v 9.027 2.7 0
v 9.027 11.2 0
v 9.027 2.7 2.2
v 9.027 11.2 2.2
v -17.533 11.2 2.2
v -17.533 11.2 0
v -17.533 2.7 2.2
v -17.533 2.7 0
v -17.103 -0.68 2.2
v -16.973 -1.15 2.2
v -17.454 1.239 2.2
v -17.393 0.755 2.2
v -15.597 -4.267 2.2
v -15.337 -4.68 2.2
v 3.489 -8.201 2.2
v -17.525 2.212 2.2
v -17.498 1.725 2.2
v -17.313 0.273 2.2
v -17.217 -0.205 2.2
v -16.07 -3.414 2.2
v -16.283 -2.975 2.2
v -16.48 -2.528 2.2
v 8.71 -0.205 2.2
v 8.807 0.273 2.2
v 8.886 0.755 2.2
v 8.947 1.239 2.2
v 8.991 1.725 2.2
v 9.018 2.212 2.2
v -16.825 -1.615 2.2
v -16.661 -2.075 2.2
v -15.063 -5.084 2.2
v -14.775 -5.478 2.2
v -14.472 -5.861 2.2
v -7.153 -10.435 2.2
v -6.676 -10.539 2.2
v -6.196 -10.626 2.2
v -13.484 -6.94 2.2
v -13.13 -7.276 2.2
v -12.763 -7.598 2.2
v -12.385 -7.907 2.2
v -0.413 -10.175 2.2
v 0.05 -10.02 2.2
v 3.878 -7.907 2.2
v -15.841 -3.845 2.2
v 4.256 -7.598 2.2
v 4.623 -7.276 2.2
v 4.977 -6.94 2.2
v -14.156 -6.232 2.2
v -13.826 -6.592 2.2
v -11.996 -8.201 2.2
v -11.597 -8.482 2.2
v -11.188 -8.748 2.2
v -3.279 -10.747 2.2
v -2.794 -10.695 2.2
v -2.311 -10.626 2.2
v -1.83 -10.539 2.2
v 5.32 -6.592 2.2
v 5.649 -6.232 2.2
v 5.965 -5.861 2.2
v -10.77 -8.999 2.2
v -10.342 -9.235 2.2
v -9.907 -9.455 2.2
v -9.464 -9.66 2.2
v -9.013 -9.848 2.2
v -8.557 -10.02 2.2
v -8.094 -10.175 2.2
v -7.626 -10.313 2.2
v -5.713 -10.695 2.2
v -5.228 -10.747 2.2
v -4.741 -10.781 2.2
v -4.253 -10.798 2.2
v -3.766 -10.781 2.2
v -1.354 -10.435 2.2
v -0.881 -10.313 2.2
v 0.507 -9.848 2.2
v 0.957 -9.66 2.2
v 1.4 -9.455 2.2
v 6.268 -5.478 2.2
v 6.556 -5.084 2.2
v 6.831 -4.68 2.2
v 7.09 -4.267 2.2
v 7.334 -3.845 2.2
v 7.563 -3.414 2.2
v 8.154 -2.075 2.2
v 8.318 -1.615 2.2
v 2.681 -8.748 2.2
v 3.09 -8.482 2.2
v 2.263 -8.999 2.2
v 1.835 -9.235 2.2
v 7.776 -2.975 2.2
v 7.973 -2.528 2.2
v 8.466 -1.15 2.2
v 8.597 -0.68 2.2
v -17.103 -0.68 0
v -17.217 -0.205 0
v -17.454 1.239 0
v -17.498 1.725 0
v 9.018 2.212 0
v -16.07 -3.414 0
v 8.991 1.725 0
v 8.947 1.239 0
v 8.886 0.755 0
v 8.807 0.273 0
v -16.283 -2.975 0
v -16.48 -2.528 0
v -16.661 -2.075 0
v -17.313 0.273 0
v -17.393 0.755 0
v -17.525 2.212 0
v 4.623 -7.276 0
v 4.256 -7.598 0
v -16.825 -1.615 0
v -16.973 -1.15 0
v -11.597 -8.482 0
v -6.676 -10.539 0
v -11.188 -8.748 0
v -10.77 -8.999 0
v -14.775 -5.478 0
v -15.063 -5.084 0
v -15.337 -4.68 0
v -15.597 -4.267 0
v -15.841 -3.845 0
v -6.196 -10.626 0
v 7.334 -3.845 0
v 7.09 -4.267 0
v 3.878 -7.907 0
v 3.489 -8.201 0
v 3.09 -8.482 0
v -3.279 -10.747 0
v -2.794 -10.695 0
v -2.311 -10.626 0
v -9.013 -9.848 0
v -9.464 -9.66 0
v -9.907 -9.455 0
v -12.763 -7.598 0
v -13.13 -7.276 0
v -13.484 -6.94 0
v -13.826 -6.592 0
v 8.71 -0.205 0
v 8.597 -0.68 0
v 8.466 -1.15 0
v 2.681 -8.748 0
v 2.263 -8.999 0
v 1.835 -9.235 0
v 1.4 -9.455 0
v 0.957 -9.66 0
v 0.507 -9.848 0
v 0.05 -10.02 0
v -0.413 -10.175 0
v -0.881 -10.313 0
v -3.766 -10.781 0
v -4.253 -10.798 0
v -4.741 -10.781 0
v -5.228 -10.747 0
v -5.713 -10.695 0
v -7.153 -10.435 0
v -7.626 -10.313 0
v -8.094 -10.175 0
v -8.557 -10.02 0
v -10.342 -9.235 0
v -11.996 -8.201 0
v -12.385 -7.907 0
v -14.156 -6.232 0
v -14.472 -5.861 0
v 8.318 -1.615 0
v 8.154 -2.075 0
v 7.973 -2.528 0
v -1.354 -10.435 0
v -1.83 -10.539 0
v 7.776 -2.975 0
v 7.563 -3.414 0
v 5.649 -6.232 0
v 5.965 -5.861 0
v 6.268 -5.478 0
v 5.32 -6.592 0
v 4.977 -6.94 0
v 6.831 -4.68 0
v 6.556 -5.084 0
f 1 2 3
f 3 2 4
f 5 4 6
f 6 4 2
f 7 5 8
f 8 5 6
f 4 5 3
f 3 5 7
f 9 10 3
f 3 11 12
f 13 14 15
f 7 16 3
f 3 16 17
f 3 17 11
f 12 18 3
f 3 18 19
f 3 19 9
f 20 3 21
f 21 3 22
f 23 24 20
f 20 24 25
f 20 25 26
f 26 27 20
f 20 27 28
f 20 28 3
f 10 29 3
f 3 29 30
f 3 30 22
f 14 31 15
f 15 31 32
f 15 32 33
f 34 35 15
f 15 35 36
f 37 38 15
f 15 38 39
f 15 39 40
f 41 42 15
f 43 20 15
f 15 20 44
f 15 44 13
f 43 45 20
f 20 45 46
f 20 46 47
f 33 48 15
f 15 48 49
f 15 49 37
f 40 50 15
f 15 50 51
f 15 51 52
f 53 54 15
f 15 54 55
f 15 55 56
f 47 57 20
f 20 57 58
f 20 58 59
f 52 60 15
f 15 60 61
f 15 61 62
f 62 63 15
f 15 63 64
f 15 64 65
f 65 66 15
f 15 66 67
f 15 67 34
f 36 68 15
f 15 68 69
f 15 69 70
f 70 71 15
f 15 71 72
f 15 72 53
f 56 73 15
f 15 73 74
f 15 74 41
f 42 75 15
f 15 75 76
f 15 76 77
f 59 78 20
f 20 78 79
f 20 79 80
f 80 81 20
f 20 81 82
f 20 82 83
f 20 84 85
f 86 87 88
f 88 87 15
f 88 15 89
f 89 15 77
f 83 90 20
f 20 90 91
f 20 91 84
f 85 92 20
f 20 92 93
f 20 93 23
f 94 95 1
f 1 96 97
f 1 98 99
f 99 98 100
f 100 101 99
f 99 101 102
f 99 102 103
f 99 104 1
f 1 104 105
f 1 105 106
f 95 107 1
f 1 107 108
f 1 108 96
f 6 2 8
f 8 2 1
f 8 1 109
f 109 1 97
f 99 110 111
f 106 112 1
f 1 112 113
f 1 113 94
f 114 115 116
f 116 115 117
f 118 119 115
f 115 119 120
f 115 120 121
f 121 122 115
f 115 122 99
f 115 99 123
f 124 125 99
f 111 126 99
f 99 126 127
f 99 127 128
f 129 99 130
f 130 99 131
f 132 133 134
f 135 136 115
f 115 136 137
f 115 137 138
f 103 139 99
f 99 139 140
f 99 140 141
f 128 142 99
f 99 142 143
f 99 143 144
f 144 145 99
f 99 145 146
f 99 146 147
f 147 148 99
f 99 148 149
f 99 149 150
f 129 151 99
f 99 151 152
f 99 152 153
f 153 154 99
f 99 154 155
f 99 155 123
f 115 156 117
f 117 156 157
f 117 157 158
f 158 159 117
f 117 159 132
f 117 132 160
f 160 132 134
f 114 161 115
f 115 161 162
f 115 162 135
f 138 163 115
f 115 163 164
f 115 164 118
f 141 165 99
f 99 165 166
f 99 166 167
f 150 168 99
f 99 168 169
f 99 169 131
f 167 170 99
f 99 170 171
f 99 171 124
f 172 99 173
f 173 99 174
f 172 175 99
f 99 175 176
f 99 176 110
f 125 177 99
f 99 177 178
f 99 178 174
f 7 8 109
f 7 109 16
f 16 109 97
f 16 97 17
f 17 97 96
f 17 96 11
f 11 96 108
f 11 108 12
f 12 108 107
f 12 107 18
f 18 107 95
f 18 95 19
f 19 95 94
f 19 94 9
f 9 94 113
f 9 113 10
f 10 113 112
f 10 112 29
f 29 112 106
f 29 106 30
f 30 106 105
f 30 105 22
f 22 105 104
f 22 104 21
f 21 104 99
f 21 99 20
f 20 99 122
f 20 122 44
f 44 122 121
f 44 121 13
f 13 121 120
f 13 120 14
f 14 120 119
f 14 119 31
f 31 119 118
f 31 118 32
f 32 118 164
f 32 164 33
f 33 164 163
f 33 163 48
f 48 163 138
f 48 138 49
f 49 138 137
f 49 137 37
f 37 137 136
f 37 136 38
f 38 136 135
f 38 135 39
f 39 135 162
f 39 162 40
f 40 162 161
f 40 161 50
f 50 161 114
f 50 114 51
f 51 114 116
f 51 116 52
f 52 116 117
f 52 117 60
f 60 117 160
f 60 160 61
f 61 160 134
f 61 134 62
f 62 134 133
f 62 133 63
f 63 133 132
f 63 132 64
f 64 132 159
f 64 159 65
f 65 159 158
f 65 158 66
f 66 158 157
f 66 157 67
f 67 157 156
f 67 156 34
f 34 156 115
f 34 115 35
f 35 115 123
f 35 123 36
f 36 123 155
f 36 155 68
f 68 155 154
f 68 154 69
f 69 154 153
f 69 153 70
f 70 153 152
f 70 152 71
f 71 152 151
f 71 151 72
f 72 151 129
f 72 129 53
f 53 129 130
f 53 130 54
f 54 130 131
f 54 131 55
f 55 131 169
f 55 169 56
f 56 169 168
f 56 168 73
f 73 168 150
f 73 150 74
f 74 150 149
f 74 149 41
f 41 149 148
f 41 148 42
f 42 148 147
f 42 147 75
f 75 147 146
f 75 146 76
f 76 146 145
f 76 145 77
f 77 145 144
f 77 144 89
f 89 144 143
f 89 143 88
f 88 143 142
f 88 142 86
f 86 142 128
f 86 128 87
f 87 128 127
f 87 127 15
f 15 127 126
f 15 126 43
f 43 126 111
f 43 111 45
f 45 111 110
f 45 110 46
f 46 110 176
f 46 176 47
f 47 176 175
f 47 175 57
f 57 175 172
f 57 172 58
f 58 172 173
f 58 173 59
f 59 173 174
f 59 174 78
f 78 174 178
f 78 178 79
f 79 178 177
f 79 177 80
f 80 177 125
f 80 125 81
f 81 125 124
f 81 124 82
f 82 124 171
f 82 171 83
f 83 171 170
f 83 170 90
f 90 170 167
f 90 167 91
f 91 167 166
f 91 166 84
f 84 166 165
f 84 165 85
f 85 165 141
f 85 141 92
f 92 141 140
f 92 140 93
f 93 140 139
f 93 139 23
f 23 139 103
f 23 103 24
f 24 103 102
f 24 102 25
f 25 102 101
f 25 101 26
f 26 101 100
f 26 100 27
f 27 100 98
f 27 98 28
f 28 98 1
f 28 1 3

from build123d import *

# Parameters (mm, degrees)
SKETCH_1_W      = 26.56
SKETCH_1_H      = 22
EXTRUDE_1_DEPTH = 2.2
FILLET_1_R      = 13.5


with BuildPart() as part:
    # Эскиз1 → Бобышка-Вытянуть1 (new body)
    with BuildSketch(Plane.XY):
        with Locations((-4.253421702, 0.2)):
            Rectangle(SKETCH_1_W, SKETCH_1_H)
    extrude(amount=EXTRUDE_1_DEPTH)

    # Скругление1
    # the kernel refuses this fillet: 13.5 mm, written as the material it takes off along each edge
    with BuildSketch(Plane(origin=(9.026578298, -10.8, -33.75), x_dir=(0, 1, 0), z_dir=(0, 0, 1)), Plane(origin=(-17.533421702, -10.8, -33.75), x_dir=(1, 0, 0), z_dir=(0, 0, 1))) as fillet_1_piece_1:
        with BuildLine():
            CenterArc((FILLET_1_R, FILLET_1_R), FILLET_1_R, 180, 90)
            Line((0, FILLET_1_R), (0, 0))
            Line((0, 0), (FILLET_1_R, 0))
        make_face()
    extrude(amount=69.7, mode=Mode.SUBTRACT)


solid = part.part
